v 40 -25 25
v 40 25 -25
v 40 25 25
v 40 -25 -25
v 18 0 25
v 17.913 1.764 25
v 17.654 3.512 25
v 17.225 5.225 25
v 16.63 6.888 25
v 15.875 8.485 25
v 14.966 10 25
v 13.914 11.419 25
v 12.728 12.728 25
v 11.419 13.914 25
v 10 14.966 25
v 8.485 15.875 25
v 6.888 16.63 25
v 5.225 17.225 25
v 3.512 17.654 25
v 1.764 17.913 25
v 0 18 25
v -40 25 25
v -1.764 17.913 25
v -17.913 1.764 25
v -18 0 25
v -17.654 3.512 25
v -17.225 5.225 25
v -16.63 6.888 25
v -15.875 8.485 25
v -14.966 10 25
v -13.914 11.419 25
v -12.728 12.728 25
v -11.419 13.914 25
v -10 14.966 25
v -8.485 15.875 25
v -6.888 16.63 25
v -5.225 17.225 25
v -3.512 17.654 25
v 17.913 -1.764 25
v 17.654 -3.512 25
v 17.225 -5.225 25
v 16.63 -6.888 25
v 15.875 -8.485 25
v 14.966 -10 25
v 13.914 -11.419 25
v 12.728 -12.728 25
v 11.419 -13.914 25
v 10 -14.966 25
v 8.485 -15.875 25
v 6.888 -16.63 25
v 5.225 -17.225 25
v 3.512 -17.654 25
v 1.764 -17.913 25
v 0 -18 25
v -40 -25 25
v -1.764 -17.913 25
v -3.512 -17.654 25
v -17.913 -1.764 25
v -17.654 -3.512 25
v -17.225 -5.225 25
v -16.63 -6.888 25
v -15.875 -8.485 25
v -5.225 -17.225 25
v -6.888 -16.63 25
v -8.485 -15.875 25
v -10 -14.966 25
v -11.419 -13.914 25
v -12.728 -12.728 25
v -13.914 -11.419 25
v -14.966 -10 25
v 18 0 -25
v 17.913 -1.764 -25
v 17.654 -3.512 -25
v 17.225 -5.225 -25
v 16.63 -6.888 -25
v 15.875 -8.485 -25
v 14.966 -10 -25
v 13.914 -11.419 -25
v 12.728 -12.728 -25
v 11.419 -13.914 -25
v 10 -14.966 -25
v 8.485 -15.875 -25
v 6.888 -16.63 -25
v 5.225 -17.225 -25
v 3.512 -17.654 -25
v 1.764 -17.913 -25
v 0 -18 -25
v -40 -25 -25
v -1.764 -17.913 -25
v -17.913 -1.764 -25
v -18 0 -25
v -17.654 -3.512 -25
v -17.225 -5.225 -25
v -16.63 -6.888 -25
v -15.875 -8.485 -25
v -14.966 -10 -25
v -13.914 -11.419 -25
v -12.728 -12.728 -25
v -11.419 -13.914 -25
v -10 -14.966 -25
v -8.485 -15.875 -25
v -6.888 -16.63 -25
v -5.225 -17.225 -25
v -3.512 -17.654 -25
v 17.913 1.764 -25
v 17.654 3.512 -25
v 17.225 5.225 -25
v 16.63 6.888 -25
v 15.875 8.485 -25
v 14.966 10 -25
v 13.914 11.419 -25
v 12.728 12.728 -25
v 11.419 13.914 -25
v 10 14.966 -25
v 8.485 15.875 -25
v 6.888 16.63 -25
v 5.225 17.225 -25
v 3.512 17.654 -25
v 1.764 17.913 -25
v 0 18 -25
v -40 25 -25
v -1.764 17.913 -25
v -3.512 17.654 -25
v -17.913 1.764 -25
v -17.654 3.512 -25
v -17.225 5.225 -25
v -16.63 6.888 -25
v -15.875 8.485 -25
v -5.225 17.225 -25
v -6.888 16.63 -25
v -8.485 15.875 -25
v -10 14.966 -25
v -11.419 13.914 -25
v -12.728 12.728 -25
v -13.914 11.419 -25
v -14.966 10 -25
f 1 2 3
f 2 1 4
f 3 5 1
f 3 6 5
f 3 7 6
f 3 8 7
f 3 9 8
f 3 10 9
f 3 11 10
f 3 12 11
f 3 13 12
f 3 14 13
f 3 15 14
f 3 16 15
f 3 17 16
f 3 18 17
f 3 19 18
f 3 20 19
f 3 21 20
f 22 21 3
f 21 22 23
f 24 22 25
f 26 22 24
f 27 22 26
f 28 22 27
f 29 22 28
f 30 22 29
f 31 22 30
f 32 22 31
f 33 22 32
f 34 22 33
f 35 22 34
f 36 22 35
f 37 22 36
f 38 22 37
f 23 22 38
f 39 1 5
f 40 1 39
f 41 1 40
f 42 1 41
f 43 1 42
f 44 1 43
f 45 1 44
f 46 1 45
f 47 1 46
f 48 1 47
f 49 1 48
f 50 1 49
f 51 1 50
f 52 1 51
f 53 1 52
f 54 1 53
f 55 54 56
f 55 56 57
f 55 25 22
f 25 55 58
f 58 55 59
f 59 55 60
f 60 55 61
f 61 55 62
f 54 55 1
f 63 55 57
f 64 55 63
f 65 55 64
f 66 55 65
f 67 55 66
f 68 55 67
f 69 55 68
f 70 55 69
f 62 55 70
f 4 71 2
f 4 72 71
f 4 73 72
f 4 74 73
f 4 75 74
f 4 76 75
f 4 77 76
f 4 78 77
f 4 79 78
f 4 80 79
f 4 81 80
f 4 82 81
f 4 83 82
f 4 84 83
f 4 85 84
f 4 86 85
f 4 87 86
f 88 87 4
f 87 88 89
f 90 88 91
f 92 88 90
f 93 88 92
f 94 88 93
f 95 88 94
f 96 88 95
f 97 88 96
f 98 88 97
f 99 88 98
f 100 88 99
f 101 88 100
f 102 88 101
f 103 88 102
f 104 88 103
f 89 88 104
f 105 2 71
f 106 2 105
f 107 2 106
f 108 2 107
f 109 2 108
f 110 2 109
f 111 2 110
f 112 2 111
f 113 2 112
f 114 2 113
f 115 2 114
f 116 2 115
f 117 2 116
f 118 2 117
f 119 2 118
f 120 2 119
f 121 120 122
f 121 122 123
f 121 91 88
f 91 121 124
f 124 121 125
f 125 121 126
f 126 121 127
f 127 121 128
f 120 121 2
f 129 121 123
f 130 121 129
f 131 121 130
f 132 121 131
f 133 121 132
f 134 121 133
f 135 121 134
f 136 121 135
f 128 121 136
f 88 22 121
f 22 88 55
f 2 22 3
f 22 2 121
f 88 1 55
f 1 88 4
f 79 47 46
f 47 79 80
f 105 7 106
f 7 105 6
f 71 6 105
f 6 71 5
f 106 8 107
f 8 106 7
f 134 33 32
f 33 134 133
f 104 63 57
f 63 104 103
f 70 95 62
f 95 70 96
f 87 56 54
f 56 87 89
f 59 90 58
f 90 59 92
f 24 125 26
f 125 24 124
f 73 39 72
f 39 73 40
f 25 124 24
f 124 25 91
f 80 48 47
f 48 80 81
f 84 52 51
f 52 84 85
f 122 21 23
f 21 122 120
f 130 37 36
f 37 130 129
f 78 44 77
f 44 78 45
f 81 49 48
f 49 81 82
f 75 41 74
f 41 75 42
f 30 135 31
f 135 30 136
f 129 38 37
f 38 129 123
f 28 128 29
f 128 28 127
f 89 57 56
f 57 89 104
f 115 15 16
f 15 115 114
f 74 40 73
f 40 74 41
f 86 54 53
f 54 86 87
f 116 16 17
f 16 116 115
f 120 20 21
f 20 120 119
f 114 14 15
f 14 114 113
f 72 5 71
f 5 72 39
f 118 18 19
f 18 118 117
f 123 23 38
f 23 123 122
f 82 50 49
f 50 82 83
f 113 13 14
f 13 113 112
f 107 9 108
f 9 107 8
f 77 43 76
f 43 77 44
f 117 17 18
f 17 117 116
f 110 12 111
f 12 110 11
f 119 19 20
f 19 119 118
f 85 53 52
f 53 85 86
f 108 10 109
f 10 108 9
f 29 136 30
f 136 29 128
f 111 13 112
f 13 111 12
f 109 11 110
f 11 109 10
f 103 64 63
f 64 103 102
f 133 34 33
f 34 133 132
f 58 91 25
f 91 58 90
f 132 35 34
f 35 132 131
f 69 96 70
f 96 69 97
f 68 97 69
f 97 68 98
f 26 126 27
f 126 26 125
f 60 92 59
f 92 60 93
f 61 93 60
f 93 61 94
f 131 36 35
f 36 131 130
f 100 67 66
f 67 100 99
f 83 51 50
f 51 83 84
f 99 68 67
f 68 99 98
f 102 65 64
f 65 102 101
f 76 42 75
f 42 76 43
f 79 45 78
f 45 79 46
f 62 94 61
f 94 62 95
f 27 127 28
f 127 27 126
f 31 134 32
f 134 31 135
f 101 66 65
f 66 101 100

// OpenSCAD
// file: _common.scad
// orthographic 共用尺寸 / 解析度設定
// 所有物件外接立方控制在 ~80 mm，方便相機固定縮放
$fn = 64;  // 圓面解析度（影響 STL 大小，64 在視覺與大小取得平衡）
CHAMFER = 1.2;  // 標準導角尺寸
// main file
// 帶圓孔板：80×50×50，中央貫穿 Ø36 圓孔（孔軸 = Z）
include <_common.scad>

difference() {
  translate([-40, -25, -25]) cube([80, 50, 50]);
  // 孔軸沿 Z 軸貫穿
  translate([0, 0, -30]) cylinder(h = 60, r = 18, $fn = $fn);
}
